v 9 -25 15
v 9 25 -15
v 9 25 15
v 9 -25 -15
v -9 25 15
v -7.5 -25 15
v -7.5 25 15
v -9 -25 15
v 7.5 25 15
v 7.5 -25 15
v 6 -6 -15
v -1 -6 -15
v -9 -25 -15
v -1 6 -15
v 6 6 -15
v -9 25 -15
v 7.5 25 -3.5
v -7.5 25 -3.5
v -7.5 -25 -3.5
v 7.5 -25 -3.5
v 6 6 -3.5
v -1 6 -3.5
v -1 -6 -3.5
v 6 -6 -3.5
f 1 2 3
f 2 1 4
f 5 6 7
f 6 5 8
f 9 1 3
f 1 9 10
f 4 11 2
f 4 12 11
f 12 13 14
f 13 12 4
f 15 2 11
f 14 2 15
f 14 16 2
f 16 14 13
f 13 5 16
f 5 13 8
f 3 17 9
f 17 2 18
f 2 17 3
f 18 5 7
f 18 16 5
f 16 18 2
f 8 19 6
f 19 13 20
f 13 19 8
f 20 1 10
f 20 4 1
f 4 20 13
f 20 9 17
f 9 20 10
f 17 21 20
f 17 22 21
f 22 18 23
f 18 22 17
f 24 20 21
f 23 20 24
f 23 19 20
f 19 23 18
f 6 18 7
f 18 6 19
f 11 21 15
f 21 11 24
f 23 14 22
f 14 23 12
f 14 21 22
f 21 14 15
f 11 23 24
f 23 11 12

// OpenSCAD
difference(){
    cube([15+3,50,20+10],center=true);

    translate([0,0,1.5+5])
    cube([15,55,20],center=true);
    translate([14.5-12,0,0])
    cube([7,12,50],center=true);
}
